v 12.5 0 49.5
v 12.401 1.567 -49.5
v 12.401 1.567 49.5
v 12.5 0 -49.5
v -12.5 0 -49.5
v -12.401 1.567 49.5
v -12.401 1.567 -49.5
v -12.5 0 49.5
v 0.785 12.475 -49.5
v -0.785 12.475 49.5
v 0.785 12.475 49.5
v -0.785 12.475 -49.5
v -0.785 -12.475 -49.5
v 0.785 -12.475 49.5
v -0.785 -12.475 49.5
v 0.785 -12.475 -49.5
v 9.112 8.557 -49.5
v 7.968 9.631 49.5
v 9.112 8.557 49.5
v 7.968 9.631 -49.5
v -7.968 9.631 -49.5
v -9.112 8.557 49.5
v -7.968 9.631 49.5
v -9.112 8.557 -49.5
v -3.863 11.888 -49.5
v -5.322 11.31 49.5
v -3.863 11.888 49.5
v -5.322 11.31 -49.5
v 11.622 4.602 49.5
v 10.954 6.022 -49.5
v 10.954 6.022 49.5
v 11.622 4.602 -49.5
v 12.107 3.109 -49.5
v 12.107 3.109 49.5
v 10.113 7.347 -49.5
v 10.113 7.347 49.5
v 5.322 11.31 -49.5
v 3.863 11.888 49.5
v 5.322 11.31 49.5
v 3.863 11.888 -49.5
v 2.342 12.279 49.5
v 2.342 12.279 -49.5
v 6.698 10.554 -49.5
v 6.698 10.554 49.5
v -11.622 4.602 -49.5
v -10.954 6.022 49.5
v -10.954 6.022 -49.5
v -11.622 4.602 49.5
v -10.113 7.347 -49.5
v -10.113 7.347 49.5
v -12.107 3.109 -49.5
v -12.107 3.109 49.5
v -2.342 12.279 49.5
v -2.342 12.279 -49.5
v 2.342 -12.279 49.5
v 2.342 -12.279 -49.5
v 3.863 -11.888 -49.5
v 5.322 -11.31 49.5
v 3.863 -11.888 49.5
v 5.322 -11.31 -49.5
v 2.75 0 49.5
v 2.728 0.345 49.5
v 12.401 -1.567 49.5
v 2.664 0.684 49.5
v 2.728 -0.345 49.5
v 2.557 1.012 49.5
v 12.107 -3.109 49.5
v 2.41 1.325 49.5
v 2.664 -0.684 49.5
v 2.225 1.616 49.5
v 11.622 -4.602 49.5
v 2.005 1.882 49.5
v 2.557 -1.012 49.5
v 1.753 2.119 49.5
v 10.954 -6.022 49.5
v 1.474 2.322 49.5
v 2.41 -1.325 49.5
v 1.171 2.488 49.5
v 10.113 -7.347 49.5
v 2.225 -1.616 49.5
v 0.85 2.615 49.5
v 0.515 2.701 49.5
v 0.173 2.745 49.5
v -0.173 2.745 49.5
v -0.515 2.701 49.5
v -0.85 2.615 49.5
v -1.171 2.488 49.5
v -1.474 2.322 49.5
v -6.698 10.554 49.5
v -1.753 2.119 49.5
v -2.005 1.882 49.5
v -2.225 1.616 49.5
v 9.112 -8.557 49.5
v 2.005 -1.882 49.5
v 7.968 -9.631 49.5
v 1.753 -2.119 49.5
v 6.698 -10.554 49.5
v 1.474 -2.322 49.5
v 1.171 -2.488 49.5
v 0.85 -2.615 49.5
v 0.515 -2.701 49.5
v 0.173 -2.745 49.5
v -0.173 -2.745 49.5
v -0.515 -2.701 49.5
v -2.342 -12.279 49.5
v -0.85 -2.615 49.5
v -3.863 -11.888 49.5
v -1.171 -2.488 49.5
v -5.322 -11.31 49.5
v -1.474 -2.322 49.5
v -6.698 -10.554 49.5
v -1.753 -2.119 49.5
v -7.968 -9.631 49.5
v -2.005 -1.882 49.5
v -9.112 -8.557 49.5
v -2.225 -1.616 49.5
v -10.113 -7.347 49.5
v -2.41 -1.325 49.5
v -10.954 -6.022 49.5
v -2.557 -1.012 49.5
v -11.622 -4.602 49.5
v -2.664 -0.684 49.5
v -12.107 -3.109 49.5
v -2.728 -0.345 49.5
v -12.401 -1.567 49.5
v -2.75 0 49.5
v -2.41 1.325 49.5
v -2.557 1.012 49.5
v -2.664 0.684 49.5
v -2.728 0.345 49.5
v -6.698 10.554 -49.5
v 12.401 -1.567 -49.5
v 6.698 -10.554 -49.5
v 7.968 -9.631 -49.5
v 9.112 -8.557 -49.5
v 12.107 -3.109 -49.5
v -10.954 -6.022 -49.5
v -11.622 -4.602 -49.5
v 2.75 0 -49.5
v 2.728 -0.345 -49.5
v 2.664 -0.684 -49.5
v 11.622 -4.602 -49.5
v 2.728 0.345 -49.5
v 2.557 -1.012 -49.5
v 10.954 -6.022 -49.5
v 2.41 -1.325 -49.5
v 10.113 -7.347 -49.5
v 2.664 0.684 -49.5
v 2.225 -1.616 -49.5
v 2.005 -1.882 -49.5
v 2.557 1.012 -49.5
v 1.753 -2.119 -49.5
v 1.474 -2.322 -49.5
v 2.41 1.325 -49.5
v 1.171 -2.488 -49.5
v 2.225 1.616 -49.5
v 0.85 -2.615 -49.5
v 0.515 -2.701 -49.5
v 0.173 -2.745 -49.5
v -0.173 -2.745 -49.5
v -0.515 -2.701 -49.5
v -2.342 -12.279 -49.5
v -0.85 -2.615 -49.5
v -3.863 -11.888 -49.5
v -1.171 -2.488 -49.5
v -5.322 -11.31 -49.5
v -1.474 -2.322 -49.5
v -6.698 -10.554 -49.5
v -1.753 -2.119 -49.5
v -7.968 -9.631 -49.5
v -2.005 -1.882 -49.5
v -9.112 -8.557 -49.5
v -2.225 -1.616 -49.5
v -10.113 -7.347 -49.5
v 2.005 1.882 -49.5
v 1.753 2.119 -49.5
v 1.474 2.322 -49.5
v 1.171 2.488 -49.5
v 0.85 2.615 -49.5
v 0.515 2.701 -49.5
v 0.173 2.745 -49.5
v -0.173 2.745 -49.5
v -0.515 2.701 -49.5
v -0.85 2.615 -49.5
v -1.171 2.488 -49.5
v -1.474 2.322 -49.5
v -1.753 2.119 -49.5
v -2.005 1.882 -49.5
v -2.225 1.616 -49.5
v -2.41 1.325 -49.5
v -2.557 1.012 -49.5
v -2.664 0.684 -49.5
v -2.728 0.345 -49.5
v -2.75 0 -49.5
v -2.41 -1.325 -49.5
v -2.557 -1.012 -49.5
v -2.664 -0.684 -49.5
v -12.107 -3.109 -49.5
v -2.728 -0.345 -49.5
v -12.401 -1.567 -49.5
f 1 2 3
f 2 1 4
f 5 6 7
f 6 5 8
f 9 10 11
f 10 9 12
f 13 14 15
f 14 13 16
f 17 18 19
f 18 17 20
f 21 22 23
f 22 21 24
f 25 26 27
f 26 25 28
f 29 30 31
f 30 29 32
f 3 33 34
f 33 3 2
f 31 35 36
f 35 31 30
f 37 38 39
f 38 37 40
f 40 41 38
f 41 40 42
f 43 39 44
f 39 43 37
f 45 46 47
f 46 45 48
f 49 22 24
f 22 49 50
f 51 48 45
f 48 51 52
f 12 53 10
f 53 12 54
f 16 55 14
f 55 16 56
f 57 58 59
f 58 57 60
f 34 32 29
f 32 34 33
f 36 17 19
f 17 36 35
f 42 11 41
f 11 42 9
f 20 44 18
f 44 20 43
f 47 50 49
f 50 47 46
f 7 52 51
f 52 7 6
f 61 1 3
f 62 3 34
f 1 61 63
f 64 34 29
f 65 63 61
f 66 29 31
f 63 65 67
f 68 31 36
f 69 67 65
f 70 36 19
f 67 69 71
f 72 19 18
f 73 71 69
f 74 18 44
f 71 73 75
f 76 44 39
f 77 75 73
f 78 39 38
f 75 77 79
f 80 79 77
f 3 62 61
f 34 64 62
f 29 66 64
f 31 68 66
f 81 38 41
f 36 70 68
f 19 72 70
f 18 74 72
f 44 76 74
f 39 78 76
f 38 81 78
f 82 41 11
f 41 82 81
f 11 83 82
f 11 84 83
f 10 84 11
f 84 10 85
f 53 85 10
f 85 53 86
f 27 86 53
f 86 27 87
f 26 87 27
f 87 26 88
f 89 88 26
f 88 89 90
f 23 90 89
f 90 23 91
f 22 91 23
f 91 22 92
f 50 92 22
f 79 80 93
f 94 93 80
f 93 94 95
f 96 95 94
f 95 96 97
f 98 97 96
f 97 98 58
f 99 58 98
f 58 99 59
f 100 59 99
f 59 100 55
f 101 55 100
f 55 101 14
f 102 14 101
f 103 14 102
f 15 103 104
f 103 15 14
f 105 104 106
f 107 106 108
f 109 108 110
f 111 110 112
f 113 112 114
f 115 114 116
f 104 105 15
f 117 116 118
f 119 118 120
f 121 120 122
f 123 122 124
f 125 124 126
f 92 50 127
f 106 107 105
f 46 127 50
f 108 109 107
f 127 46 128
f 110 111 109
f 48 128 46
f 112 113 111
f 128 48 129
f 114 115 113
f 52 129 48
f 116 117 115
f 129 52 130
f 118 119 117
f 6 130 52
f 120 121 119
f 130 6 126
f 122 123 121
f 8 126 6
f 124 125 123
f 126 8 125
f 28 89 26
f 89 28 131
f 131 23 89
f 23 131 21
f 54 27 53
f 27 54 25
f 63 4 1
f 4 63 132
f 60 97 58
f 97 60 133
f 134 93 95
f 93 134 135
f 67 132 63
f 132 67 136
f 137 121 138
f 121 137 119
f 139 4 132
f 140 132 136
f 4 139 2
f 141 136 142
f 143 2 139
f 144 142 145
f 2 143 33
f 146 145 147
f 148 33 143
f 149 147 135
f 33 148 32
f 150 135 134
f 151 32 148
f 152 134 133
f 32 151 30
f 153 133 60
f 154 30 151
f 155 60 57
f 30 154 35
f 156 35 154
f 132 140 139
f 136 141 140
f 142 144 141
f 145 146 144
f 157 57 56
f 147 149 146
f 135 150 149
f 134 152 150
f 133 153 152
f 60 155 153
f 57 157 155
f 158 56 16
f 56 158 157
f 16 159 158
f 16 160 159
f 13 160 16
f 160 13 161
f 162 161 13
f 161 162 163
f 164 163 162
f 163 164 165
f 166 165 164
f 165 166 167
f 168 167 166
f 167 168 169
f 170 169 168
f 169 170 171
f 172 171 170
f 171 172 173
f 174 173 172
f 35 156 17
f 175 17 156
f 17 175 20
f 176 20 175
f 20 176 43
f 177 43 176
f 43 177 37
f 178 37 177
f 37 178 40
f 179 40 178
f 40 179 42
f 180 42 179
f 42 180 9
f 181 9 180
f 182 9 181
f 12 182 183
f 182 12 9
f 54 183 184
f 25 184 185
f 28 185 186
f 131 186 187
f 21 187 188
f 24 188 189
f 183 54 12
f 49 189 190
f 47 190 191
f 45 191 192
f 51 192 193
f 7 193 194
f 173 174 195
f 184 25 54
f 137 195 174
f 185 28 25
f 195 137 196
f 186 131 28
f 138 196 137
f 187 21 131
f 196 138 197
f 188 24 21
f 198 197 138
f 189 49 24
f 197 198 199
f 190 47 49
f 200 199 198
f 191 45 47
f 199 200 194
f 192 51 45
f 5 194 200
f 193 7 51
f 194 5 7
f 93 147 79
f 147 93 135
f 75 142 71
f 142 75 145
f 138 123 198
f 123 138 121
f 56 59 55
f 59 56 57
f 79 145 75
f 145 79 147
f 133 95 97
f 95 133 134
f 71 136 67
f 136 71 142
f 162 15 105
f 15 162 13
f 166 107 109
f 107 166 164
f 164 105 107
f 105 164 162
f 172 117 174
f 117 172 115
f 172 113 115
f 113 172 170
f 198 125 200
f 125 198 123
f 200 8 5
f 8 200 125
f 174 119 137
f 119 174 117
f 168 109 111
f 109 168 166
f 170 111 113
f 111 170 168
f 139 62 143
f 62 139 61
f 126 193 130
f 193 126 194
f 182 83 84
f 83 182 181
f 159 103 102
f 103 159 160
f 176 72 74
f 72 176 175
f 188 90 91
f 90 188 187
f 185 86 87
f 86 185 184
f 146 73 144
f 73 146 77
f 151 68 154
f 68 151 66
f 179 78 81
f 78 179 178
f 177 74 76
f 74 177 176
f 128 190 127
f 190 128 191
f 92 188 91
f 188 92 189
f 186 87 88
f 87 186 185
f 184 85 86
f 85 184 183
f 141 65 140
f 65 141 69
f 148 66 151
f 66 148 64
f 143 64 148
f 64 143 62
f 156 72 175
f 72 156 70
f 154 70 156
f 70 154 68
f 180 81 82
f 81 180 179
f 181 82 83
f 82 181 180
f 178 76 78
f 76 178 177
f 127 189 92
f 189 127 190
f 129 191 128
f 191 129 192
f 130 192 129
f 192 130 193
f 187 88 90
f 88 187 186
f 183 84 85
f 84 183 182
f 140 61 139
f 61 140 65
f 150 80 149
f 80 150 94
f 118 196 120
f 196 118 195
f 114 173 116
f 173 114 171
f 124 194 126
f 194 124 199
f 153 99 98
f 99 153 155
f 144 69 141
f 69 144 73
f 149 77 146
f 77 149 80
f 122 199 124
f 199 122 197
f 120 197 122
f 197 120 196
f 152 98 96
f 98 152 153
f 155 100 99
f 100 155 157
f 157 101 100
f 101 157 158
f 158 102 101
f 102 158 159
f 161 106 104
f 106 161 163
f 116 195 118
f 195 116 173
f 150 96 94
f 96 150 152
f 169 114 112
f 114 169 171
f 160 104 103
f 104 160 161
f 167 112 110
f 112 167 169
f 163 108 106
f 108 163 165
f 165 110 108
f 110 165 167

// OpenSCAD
$fn = 50;


difference() {
	union() {
		translate(v = [0, 0, -49.5000000000]) {
			cylinder(h = 99, r = 12.5000000000);
		}
	}
	union() {
		translate(v = [0, 0, -100.0000000000]) {
			cylinder(h = 200, r = 2.7500000000);
		}
	}
}
